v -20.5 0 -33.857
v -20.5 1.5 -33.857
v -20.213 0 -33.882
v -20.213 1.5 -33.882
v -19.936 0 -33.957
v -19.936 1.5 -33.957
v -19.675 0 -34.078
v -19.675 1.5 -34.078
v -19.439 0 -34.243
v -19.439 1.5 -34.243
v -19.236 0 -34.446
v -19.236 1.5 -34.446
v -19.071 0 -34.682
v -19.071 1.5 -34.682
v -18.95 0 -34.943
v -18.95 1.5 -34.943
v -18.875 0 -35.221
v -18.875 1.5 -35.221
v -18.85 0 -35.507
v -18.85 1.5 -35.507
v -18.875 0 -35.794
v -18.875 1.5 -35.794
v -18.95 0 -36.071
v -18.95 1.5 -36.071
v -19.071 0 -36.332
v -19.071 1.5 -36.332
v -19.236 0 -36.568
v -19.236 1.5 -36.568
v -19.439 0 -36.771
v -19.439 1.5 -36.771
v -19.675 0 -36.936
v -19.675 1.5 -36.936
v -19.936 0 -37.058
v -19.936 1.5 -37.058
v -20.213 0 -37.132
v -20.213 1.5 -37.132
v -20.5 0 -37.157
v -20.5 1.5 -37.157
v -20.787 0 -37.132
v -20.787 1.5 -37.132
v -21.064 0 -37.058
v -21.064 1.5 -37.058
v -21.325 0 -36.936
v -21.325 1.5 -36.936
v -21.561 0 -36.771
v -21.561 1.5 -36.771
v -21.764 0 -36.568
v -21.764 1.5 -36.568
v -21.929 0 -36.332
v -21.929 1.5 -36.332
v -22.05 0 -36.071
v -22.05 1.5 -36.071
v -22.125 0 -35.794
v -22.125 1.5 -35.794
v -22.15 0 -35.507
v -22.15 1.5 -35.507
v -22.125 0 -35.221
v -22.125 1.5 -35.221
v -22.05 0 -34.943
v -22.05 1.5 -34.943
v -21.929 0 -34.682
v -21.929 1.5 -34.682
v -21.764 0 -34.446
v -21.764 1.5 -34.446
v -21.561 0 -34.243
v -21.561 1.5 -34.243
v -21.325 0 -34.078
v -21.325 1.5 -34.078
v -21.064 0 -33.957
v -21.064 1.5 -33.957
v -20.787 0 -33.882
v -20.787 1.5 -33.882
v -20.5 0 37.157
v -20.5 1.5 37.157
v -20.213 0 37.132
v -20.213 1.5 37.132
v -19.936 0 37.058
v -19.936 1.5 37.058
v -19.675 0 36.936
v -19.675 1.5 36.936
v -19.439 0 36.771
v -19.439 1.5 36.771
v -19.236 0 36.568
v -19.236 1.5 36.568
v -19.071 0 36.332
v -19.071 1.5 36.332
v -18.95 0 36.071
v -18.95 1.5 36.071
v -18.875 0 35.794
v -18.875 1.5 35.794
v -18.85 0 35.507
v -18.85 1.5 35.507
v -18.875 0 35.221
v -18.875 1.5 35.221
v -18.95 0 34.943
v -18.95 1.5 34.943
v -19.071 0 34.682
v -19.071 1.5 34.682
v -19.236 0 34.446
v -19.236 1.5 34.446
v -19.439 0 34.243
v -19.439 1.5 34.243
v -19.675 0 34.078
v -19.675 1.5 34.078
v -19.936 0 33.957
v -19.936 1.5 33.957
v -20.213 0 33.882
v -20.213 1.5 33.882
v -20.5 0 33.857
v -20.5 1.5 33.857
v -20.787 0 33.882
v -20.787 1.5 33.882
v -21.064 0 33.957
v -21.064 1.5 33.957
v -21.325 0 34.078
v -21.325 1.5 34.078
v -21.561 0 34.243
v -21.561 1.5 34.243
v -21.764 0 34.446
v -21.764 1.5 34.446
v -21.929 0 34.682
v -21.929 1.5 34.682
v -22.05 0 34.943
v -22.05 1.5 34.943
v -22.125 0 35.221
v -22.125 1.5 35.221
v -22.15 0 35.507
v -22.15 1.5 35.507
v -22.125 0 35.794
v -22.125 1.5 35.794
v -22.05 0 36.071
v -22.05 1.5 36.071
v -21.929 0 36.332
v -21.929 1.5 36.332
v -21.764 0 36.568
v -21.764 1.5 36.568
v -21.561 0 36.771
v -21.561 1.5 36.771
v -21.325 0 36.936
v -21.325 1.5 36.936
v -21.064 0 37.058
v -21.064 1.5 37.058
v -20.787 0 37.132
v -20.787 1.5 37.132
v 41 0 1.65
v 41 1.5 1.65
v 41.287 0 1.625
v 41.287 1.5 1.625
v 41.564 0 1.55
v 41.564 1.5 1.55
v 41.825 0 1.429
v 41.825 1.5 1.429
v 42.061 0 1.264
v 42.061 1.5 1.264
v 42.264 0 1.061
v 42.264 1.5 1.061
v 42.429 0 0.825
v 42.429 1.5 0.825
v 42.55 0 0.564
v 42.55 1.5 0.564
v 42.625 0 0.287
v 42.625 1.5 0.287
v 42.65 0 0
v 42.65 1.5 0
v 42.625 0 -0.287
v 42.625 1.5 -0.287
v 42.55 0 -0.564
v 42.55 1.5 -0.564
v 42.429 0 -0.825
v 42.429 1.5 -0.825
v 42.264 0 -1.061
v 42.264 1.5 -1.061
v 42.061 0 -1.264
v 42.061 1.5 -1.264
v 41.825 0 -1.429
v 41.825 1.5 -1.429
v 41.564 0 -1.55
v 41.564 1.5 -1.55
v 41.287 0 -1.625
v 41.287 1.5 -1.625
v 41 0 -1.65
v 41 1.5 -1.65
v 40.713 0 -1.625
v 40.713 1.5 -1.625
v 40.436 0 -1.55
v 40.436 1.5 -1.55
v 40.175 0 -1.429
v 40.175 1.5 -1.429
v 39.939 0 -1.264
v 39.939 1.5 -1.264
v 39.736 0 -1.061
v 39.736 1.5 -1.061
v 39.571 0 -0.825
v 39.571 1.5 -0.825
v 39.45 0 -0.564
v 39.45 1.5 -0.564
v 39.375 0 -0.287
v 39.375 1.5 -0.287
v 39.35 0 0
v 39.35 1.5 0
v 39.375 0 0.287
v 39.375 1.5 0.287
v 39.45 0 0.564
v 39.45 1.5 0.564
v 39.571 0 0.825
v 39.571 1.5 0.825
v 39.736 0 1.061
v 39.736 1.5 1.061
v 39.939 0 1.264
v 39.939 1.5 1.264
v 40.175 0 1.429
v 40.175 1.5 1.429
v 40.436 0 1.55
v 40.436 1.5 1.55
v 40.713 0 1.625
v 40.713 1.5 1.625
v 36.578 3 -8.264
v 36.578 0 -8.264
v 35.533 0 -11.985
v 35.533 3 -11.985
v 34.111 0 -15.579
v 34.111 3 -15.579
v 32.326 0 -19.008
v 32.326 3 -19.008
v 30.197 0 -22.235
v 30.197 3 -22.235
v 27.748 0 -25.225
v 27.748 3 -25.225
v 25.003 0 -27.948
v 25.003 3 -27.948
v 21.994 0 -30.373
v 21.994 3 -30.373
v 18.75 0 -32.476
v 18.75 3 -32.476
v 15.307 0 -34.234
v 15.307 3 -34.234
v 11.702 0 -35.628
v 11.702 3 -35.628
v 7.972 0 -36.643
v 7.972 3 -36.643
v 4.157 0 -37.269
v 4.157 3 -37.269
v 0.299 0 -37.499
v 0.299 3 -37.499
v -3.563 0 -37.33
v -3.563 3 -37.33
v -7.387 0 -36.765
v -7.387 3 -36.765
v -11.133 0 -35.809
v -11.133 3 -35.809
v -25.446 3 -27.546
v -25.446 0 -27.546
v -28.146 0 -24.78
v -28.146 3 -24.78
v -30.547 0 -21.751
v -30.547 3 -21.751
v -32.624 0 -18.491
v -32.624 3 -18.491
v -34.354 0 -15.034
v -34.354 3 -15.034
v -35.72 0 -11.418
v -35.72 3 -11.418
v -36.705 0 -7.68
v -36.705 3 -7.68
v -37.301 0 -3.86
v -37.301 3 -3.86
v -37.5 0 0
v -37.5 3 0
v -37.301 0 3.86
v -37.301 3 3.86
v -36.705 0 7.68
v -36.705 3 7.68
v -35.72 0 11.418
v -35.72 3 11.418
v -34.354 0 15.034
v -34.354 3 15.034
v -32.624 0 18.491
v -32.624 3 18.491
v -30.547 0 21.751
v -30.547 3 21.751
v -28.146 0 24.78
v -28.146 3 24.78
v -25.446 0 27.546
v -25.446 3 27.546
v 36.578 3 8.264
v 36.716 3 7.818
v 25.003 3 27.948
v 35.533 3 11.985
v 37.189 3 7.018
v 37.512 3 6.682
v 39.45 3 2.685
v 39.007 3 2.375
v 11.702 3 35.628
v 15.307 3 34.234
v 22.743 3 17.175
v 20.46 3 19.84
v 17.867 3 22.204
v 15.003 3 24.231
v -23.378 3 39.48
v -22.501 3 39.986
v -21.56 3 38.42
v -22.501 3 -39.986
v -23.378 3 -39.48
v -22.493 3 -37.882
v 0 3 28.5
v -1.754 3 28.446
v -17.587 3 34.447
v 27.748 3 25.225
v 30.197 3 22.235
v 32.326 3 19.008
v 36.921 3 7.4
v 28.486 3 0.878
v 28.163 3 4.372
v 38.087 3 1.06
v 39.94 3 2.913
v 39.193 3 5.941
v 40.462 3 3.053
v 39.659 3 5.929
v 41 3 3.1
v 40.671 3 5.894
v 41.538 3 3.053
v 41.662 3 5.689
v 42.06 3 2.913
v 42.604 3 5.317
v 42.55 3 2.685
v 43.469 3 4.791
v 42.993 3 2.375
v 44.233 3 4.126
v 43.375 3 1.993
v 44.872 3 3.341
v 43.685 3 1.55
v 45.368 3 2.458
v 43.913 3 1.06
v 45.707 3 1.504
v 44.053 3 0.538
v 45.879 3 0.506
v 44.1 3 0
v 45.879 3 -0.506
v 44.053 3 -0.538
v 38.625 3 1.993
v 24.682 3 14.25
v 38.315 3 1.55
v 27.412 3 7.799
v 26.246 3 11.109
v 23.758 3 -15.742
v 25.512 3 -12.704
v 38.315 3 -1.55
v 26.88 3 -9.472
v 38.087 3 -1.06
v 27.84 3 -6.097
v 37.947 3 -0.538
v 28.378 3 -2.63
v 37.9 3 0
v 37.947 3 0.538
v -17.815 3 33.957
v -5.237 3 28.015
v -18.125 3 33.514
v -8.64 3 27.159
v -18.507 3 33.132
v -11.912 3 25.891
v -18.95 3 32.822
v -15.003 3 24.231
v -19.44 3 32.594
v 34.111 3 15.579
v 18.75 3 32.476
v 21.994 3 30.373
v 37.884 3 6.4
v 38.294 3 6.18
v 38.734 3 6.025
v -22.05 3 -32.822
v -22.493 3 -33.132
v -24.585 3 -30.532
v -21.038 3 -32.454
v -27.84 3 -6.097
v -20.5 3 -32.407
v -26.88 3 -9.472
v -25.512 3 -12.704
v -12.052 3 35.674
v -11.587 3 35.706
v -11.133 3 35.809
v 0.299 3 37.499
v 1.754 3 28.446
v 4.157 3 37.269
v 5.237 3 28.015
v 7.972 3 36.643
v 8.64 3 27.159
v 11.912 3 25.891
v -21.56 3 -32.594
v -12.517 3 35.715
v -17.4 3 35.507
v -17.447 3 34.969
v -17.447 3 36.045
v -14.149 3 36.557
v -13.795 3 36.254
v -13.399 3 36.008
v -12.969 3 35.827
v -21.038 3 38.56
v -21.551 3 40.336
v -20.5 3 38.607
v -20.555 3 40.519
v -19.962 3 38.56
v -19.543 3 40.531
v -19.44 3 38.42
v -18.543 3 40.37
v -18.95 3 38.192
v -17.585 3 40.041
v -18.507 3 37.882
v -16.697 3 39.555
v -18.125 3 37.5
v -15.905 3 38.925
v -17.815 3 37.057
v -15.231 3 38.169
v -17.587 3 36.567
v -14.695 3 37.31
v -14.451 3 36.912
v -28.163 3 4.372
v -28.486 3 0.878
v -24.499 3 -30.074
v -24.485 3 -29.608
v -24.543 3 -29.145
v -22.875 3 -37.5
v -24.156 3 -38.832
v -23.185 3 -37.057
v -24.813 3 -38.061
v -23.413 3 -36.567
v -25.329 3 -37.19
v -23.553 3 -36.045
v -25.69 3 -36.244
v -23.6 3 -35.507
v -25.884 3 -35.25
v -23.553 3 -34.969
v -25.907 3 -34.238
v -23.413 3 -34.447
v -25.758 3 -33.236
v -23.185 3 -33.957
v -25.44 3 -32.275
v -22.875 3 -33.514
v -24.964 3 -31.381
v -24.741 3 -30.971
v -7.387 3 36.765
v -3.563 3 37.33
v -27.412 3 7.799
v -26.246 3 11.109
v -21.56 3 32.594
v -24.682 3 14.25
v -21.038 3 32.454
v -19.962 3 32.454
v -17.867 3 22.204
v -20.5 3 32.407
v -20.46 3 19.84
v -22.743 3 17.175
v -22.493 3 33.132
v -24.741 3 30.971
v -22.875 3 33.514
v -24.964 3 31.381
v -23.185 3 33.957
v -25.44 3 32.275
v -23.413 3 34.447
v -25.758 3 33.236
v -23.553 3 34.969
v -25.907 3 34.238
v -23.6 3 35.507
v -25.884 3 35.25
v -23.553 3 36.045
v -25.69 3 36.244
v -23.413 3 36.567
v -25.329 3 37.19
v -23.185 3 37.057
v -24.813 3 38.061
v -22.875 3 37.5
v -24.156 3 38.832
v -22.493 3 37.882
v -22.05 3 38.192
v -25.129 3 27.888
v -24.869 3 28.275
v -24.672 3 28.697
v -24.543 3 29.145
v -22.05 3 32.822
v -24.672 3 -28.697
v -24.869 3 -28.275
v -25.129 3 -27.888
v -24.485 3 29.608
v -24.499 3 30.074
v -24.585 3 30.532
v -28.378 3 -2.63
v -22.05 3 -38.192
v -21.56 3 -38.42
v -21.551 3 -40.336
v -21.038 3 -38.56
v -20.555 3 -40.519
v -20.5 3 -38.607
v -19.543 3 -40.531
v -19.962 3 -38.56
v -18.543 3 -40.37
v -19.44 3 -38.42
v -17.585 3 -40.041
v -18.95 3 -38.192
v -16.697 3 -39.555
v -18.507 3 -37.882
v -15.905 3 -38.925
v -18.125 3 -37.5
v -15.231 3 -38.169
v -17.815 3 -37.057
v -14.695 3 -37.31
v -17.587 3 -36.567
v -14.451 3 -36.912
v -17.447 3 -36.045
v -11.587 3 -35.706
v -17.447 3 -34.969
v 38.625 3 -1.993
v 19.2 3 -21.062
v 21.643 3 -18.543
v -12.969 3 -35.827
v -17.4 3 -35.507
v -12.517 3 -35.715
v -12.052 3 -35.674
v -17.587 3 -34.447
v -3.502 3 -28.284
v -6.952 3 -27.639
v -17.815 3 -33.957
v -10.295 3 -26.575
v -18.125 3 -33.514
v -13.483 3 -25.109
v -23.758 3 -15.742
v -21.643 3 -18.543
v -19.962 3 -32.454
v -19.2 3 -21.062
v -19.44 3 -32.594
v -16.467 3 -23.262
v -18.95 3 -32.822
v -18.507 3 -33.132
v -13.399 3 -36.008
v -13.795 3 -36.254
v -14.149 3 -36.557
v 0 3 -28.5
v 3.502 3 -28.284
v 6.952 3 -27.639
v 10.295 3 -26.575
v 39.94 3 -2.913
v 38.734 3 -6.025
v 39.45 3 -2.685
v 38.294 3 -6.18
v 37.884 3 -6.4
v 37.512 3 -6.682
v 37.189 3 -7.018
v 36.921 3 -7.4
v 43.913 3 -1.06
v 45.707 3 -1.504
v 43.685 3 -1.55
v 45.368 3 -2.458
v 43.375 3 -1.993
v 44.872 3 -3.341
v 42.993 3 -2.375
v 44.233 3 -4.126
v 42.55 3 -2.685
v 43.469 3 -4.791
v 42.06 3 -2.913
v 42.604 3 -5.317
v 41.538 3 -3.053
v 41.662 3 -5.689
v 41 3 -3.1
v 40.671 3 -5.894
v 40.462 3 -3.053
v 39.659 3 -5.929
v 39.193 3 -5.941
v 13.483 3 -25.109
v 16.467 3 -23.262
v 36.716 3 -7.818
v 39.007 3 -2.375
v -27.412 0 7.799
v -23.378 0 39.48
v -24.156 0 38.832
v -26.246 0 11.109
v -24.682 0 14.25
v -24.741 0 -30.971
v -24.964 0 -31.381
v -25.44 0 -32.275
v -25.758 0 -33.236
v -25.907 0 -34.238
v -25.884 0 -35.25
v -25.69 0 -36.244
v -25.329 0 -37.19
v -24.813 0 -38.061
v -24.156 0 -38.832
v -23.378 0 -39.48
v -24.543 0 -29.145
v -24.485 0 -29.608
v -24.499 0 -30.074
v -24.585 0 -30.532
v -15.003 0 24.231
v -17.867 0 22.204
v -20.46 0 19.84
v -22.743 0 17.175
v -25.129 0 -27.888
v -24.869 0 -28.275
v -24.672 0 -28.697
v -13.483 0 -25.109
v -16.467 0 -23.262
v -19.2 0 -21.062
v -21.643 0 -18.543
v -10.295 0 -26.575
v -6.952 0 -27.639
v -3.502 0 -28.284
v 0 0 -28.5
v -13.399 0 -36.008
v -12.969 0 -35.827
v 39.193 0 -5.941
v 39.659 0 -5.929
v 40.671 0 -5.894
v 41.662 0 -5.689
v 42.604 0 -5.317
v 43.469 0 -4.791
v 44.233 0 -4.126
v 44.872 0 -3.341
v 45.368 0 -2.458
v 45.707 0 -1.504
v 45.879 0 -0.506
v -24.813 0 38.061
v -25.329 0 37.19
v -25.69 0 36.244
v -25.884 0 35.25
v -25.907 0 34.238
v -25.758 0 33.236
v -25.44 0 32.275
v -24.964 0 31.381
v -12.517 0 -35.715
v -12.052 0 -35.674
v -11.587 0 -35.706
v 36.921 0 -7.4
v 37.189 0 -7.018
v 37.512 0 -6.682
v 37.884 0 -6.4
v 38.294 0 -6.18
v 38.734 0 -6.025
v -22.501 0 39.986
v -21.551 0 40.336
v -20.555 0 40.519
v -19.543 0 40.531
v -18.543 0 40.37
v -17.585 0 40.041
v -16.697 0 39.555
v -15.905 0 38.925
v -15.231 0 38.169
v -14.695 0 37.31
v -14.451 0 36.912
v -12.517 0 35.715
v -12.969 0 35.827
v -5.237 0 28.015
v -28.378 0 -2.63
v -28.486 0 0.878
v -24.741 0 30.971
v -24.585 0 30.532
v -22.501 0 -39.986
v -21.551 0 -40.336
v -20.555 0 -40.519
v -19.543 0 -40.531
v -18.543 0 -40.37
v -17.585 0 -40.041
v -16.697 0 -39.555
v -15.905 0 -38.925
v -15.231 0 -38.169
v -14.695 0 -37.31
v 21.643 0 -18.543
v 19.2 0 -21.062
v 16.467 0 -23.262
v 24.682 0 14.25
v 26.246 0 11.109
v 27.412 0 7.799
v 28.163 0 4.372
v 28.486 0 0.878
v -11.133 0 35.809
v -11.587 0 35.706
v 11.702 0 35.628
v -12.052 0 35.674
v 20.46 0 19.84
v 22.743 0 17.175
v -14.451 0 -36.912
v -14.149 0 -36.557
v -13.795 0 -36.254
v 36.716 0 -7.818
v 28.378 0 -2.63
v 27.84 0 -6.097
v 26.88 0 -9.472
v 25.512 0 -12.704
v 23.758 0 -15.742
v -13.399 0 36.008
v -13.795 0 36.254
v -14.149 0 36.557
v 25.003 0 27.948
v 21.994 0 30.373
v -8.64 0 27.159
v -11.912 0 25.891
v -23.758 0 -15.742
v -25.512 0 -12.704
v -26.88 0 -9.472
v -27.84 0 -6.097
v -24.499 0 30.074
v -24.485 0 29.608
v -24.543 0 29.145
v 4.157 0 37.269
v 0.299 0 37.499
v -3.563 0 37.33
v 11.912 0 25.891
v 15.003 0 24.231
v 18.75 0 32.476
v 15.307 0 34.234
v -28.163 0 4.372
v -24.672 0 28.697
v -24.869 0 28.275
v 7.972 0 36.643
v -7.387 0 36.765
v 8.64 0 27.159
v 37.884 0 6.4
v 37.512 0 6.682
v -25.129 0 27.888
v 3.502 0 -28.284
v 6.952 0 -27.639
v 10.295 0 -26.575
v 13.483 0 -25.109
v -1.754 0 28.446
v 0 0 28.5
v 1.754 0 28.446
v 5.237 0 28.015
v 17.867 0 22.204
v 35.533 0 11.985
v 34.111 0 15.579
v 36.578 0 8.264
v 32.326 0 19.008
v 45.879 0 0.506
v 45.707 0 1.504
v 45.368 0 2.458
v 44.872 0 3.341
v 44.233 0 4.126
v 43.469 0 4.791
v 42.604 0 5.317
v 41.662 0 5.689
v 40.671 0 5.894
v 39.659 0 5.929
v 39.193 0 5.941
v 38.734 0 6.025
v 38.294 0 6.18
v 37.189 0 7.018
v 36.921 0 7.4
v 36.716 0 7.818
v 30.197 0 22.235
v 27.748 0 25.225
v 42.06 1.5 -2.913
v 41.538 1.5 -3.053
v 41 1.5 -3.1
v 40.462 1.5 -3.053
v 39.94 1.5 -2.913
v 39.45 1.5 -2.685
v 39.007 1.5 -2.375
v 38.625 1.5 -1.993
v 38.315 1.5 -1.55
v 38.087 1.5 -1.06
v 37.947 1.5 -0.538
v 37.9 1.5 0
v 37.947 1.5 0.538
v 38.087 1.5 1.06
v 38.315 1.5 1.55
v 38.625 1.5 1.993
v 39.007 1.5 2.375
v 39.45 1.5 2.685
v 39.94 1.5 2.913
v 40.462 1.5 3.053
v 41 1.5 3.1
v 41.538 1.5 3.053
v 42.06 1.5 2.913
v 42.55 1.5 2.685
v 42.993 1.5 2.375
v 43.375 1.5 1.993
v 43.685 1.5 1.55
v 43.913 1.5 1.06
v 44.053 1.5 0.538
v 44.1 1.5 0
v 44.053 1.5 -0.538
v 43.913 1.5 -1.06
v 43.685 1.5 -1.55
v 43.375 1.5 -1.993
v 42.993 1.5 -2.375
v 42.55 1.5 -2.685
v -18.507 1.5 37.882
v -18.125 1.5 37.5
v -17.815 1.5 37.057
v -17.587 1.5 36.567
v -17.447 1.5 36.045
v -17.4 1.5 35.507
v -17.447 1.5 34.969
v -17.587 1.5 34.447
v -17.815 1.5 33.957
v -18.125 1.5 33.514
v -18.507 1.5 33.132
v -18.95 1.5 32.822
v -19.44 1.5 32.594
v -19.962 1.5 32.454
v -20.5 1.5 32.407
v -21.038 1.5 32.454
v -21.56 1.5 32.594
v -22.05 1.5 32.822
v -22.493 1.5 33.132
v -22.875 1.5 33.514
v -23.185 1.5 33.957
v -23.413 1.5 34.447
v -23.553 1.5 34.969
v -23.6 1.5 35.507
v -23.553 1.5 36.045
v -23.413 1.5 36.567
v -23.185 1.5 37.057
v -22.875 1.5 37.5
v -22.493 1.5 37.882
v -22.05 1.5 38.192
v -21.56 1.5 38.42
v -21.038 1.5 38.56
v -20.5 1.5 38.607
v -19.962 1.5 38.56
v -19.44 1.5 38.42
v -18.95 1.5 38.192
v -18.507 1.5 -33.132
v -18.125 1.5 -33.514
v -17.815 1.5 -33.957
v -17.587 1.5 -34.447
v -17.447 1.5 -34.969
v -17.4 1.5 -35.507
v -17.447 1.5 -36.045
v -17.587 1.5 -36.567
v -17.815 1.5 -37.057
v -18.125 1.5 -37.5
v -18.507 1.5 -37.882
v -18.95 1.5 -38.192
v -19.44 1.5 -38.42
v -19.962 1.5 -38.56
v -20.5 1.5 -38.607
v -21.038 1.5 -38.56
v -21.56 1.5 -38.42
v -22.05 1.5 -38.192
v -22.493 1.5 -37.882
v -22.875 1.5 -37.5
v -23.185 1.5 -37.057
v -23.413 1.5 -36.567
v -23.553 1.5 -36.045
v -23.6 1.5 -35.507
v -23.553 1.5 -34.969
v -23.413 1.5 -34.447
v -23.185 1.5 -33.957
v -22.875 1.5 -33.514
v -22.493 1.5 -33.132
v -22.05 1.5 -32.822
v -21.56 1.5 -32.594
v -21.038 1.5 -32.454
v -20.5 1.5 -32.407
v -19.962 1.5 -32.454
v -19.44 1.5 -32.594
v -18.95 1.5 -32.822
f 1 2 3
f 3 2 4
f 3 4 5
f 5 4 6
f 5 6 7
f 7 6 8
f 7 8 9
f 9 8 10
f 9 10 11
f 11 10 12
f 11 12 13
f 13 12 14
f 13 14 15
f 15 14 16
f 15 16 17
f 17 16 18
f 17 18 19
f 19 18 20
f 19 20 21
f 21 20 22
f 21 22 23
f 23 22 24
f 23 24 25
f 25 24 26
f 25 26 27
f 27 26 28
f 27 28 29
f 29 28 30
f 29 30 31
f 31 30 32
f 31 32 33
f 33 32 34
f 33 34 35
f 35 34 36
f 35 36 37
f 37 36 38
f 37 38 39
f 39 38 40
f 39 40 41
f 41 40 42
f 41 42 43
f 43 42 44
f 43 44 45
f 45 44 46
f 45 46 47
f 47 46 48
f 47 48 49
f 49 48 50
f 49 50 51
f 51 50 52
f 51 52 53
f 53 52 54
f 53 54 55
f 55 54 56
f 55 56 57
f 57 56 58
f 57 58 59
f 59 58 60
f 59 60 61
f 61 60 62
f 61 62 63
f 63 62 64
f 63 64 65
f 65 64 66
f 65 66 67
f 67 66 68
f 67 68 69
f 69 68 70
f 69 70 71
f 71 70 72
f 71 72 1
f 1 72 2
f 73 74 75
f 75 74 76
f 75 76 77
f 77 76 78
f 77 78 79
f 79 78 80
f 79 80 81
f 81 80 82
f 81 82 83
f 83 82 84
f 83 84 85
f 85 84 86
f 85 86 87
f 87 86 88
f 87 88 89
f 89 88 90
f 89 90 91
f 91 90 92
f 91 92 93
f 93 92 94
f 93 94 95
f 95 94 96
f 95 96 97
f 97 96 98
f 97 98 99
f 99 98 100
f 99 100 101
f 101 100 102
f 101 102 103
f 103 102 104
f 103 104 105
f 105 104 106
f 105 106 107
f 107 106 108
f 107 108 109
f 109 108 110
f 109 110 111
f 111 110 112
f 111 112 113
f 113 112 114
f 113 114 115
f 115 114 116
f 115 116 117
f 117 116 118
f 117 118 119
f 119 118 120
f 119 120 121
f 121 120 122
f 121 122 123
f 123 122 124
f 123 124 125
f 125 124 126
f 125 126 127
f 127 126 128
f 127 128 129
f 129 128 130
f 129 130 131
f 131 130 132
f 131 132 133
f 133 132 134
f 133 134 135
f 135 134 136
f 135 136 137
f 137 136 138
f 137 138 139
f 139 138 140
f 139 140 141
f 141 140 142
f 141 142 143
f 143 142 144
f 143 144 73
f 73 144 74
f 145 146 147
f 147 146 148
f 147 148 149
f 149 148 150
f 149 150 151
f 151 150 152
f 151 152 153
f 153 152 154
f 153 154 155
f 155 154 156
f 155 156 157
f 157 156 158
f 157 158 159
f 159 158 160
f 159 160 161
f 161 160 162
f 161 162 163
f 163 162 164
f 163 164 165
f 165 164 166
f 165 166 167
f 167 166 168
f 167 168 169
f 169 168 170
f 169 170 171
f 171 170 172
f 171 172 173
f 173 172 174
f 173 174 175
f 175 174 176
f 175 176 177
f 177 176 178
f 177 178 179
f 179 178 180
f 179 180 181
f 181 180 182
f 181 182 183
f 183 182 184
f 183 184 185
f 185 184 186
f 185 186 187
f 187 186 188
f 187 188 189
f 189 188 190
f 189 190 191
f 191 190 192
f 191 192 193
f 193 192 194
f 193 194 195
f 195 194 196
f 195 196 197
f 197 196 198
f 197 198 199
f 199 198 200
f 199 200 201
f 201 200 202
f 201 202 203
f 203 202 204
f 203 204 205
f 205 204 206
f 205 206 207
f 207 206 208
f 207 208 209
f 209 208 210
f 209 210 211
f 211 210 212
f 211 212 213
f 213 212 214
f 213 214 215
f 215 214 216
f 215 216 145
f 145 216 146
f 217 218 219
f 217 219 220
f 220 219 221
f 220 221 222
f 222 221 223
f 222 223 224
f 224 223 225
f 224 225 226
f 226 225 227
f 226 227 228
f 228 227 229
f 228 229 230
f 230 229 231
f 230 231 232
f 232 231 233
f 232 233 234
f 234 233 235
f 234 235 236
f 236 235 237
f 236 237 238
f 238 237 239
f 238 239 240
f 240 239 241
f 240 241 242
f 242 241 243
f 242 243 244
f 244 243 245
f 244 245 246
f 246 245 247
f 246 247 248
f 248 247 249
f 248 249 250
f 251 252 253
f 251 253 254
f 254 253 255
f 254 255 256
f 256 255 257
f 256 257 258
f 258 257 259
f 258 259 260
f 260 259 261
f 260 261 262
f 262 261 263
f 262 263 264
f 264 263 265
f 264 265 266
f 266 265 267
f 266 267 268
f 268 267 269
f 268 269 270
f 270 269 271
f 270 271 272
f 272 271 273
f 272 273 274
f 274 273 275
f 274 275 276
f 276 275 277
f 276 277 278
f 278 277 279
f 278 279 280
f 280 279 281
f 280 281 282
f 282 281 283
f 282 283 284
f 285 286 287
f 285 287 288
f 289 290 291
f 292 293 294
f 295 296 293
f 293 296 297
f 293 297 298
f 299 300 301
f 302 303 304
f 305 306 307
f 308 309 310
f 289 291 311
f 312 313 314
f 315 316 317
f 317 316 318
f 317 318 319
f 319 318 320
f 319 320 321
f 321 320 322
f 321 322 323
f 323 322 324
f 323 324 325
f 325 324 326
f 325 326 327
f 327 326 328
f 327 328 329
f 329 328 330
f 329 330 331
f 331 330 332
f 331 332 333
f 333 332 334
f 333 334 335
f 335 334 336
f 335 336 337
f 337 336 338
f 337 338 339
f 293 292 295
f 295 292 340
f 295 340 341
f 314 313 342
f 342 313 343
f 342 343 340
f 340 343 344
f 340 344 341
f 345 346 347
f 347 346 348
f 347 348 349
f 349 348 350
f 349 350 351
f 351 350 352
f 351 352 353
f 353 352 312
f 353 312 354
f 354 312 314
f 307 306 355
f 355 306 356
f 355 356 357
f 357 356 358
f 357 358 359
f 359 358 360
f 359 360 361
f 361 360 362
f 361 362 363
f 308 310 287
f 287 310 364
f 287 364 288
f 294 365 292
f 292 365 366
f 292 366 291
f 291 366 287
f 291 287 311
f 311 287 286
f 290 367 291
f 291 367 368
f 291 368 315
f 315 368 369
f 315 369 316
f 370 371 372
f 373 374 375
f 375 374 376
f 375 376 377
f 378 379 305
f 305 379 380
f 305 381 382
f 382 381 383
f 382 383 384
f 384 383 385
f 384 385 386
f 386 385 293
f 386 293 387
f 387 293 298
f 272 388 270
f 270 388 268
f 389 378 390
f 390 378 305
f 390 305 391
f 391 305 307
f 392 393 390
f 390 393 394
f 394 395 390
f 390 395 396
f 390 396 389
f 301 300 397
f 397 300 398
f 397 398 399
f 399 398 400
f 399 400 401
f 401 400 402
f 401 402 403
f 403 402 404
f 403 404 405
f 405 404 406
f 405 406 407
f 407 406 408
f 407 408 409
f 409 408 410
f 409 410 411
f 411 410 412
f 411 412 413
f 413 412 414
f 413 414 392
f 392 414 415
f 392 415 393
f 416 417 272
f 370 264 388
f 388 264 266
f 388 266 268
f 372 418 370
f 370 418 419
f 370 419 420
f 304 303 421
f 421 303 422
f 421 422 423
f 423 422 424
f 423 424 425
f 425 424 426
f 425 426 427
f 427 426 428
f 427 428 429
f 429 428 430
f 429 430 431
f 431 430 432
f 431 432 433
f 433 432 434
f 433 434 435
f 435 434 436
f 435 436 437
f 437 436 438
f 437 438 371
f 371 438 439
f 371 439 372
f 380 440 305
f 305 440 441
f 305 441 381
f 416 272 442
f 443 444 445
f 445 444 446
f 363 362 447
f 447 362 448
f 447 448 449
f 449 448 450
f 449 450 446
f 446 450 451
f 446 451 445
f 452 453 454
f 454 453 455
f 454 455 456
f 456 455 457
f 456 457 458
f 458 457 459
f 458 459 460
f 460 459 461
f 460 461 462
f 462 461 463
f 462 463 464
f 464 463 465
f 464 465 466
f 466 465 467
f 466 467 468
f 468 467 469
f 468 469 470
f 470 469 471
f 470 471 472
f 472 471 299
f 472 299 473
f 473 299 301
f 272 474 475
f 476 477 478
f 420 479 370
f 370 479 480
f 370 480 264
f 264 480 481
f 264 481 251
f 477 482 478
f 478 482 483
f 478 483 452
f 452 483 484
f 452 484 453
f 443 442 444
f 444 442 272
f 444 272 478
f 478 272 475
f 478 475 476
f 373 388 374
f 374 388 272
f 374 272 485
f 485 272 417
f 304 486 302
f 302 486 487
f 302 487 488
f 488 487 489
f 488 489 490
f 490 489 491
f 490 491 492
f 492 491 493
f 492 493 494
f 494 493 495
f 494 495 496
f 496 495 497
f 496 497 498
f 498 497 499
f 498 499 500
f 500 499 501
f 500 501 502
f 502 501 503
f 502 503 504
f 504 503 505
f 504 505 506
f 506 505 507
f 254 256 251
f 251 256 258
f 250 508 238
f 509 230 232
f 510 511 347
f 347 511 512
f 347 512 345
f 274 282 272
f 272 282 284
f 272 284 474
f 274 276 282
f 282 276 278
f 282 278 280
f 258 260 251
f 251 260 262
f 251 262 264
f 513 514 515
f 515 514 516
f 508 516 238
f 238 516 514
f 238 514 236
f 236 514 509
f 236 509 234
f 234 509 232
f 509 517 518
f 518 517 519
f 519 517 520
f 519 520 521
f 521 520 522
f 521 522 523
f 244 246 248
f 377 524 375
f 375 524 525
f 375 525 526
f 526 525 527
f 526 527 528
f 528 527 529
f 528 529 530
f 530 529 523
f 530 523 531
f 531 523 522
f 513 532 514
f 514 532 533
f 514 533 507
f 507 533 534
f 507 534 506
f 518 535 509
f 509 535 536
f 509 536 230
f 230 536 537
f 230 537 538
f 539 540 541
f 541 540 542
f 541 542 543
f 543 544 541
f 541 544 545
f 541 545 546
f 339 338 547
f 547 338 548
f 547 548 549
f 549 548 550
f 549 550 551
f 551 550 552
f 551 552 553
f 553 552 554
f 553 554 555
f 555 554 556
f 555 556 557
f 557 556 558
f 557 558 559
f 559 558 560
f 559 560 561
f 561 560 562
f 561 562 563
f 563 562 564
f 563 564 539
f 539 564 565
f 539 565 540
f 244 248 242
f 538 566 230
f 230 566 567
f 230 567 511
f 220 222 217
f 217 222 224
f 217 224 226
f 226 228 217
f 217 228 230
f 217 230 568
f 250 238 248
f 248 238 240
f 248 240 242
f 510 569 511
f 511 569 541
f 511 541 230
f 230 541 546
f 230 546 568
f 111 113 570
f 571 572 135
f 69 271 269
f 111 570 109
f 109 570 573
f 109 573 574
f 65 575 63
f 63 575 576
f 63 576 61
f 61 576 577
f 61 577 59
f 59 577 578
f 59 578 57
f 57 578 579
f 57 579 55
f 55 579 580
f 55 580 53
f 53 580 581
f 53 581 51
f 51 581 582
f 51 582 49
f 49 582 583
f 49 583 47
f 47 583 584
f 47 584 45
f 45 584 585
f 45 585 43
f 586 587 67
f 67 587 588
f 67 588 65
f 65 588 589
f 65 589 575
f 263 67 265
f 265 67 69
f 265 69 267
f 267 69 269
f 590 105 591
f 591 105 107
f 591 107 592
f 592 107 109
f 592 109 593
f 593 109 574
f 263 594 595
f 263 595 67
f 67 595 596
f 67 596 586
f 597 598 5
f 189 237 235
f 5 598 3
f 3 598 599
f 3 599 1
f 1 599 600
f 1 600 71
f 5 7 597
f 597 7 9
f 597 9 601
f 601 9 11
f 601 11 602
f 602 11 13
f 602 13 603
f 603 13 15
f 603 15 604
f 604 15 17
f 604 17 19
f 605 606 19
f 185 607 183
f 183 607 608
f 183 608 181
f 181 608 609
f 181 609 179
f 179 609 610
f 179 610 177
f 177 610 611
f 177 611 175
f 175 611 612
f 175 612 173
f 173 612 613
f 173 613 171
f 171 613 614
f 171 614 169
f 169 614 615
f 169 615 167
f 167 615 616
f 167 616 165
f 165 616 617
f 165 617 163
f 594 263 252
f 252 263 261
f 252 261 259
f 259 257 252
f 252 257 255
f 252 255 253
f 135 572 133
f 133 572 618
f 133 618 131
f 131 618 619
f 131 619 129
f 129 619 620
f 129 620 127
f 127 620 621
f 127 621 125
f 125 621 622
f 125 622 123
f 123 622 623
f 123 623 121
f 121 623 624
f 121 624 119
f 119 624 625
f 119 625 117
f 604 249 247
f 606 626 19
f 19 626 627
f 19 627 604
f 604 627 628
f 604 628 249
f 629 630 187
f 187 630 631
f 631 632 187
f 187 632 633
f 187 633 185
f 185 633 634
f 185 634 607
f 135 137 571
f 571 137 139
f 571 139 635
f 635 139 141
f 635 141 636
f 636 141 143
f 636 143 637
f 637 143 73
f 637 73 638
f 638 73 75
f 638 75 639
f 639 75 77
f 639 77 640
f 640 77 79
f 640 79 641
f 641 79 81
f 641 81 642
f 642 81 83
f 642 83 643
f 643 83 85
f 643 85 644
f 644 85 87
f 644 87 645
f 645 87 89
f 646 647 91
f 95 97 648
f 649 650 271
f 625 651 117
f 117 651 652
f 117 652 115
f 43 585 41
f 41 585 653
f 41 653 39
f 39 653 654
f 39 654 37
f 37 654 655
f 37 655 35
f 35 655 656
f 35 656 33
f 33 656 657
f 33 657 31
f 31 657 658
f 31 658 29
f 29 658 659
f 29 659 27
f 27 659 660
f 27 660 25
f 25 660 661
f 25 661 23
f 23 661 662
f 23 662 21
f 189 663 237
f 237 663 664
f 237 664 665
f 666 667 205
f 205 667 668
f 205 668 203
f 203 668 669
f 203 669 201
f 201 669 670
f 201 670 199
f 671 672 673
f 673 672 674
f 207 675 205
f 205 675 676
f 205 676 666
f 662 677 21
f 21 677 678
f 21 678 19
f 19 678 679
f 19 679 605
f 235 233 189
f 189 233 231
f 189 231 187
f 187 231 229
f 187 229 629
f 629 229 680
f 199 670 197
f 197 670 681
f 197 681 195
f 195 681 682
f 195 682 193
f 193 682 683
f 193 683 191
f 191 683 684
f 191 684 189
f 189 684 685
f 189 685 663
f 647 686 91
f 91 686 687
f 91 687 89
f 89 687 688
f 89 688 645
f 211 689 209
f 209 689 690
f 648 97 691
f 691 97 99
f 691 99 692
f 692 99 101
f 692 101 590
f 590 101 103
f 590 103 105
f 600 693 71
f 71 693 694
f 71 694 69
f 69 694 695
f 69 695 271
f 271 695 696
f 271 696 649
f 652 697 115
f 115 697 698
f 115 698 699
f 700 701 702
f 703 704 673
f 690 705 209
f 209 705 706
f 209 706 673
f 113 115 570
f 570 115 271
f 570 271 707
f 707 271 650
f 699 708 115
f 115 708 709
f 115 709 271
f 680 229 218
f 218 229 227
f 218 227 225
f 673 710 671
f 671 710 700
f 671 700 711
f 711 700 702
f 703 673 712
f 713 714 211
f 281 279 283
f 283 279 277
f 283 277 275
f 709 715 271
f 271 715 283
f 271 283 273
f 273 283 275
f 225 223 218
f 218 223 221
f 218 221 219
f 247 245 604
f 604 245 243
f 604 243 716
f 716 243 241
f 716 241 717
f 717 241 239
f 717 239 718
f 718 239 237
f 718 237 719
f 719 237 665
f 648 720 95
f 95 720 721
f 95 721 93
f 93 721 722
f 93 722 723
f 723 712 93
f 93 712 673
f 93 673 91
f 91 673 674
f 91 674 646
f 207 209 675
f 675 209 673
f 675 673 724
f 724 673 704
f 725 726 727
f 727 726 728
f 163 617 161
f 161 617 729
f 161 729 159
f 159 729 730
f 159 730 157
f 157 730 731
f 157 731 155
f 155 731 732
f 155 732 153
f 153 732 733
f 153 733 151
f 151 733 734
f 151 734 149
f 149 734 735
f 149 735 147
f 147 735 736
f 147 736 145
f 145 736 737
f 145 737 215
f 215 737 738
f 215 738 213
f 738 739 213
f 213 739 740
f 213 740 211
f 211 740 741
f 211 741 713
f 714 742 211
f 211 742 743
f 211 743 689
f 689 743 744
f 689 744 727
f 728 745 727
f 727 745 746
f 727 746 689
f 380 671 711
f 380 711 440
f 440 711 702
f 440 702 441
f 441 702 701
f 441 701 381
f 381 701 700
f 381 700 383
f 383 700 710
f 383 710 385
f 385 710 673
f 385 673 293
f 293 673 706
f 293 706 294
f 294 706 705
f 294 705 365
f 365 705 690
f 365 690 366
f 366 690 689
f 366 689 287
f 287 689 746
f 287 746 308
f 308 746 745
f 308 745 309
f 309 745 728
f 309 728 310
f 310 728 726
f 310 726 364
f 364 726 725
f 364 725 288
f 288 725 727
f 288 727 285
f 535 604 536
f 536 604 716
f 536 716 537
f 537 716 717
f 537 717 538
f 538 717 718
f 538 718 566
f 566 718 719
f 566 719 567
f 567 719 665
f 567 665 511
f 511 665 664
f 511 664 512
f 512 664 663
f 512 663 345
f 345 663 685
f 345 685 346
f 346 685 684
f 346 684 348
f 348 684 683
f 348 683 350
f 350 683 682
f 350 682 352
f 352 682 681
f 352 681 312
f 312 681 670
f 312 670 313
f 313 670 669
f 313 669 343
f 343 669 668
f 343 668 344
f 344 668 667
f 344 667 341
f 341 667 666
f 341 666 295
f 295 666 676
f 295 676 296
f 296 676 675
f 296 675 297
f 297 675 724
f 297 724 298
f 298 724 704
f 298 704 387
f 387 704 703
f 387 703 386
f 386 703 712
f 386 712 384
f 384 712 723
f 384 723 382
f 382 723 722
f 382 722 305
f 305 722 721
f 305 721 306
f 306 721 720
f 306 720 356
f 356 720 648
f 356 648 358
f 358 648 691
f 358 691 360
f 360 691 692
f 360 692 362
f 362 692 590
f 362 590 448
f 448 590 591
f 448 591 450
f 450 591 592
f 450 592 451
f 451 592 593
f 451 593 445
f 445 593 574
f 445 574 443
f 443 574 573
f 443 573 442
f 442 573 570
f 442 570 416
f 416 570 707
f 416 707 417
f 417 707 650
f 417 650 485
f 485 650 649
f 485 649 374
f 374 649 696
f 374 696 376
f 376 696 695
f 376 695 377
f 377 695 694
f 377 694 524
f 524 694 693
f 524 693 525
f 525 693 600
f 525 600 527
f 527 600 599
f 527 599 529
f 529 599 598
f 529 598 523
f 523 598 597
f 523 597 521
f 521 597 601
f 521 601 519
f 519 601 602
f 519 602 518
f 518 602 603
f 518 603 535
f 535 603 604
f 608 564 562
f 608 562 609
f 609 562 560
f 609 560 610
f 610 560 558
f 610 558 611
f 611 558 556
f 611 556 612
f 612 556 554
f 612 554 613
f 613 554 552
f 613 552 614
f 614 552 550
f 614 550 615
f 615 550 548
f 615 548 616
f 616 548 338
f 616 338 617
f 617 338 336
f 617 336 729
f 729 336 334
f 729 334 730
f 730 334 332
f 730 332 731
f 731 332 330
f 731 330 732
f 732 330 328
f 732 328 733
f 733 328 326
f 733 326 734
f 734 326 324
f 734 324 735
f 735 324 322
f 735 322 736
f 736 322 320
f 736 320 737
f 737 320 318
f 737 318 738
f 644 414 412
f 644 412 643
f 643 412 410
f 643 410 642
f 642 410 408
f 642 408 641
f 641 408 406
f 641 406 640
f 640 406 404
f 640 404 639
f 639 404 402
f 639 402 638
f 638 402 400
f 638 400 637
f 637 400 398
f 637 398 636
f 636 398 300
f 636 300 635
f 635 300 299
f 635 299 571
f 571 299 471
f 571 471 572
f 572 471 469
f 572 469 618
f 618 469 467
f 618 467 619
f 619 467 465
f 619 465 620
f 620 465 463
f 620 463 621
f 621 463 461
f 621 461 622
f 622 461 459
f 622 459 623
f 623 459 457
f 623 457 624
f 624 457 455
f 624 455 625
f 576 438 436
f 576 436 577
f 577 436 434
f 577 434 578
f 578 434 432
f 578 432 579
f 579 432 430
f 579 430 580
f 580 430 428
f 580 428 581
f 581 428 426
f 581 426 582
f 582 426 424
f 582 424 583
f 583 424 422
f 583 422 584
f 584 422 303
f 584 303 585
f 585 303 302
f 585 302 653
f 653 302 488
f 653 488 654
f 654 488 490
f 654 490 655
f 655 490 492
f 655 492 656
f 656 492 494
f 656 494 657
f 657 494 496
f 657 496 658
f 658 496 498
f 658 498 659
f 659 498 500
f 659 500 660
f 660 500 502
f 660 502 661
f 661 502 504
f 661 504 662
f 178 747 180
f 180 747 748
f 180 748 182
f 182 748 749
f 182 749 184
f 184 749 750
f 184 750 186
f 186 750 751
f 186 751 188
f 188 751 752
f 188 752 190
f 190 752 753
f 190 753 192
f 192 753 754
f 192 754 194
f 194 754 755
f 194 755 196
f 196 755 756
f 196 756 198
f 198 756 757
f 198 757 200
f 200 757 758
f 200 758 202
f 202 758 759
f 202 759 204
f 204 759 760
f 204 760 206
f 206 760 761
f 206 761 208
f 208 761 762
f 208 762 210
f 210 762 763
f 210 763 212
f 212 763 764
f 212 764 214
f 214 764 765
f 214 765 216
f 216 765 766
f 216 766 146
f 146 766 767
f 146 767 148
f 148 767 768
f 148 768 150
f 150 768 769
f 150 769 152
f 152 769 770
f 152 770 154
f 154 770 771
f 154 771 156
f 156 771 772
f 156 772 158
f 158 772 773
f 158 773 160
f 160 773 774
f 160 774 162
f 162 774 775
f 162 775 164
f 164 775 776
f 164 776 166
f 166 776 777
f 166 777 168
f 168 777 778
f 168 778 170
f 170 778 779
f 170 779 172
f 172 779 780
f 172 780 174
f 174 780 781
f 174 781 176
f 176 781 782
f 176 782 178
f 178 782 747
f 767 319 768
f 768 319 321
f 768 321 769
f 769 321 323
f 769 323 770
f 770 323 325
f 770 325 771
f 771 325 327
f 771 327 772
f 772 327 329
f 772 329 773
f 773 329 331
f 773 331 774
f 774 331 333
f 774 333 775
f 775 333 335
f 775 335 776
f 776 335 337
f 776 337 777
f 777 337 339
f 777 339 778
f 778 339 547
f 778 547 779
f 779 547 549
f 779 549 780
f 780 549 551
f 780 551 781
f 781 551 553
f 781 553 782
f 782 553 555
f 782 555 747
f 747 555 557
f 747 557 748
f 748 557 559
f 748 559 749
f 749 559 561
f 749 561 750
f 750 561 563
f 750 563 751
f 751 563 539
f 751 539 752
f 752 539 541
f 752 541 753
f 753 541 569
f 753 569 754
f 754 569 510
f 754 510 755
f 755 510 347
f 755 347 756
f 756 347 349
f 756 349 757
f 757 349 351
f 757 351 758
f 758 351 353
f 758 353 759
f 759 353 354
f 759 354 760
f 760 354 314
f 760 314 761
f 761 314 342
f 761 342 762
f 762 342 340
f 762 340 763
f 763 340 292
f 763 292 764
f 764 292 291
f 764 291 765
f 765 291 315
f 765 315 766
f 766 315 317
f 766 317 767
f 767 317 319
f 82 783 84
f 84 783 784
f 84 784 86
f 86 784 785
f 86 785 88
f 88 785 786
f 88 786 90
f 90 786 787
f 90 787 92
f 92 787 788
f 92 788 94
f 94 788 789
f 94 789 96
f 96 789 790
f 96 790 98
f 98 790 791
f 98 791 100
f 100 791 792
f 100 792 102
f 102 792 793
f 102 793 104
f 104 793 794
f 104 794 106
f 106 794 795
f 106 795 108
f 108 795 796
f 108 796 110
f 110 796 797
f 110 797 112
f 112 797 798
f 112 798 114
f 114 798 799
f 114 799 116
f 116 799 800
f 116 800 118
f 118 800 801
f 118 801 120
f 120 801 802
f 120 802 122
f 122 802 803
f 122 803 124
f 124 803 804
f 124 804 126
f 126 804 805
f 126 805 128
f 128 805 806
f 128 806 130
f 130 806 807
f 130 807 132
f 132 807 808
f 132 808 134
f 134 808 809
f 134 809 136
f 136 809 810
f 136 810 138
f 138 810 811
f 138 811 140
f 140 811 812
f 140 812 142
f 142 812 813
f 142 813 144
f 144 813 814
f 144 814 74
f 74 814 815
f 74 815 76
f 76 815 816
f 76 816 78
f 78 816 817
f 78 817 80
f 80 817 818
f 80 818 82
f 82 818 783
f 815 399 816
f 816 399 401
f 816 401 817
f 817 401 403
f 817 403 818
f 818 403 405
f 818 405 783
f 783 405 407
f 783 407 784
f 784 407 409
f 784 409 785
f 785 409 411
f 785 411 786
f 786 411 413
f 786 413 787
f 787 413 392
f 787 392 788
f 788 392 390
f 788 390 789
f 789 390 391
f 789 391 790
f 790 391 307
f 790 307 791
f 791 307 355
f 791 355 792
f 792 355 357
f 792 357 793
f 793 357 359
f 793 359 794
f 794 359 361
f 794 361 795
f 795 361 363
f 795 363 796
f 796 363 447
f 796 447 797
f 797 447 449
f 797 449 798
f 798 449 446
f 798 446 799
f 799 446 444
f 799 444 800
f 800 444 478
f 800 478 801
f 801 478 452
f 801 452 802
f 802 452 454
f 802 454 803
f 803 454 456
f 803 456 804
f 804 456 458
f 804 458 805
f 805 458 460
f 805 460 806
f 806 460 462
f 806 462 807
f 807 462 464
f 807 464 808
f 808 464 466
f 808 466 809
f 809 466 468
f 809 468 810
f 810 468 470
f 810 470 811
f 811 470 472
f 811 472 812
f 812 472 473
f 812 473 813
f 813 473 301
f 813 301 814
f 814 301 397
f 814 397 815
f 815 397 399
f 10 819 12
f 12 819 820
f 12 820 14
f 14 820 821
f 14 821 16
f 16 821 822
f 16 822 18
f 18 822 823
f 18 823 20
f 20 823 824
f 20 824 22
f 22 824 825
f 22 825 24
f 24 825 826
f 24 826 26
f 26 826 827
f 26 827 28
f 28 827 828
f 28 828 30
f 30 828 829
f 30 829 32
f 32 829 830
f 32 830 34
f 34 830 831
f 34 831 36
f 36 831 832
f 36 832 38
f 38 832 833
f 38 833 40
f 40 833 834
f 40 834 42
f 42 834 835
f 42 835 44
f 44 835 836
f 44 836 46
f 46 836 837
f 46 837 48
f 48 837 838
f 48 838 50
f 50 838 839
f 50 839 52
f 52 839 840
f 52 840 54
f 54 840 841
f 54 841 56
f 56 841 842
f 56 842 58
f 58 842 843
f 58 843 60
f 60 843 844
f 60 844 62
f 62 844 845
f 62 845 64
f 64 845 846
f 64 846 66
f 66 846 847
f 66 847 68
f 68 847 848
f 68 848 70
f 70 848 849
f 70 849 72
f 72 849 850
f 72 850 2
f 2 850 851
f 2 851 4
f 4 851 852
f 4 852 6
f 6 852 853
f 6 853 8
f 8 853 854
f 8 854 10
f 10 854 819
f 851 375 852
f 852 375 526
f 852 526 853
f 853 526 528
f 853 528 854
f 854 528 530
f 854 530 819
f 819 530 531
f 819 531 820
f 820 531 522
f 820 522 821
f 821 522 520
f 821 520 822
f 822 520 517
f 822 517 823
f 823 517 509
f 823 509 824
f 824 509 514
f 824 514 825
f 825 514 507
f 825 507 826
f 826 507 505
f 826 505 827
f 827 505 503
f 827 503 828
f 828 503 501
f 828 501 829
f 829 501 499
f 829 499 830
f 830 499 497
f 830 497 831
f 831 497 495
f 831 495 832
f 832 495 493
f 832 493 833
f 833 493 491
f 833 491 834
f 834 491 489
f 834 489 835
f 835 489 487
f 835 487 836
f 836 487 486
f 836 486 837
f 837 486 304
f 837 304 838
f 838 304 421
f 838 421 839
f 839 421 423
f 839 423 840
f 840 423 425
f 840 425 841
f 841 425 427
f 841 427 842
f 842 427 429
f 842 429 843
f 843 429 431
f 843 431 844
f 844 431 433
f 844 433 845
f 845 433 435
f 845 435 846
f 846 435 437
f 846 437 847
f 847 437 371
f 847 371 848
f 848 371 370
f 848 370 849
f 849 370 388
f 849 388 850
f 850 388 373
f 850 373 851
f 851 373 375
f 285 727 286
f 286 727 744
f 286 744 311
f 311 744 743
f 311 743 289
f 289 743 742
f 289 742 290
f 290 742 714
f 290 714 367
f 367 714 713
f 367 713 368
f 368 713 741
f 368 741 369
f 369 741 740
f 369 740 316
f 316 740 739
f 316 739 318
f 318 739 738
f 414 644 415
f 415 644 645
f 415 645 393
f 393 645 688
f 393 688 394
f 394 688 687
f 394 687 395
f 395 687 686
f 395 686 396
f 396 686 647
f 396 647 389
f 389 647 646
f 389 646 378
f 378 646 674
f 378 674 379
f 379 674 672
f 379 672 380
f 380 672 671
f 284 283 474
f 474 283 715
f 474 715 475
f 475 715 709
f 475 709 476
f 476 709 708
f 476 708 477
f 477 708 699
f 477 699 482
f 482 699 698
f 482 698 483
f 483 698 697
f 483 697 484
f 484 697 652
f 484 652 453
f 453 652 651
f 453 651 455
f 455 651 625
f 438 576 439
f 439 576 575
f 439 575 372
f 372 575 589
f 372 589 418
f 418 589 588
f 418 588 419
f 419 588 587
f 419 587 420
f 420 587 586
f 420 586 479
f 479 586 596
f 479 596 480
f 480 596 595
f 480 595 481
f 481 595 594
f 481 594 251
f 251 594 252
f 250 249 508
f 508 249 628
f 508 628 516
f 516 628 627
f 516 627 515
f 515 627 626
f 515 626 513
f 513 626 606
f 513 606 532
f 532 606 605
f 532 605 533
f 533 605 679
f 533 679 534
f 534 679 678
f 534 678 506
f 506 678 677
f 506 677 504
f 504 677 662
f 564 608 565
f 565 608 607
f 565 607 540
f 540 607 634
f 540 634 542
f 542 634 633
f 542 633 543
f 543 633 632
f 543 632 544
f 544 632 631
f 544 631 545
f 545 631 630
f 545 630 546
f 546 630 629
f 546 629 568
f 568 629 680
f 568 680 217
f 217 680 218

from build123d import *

# Parameters (mm, degrees)
SKETCH1_R           = 37.5
SKETCH1_R_2         = 28.5
BOSS_EXTRUDE1_DEPTH = 3
BOSS_EXTRUDE2_START = -3
BOSS_EXTRUDE2_DEPTH = 3
SKETCH6_R           = 1.65
CUT_EXTRUDE2_DEPTH  = 10
SKETCH7_R           = 3.1
CUT_EXTRUDE3_DEPTH  = 1.5
FILLET1_R           = 3


with BuildPart() as part:
    # Sketch1 → Boss-Extrude1 (new body)
    with BuildSketch(Plane(origin=(0, 0, 0), x_dir=(1, 0, 0), z_dir=(0, 1, 0))):
        with Locations(Location((0, 0, 0), (0, 0, 270))):
            Circle(SKETCH1_R)
        with Locations(Location((0, 0, 0), (0, 0, 270))):
            Circle(SKETCH1_R_2, mode=Mode.SUBTRACT)
    extrude(amount=BOSS_EXTRUDE1_DEPTH)

    # Sketch3 → Boss-Extrude2 (add)
    with BuildSketch(Plane(origin=(0, 3, 0), x_dir=(1, 0, 0), z_dir=(0, 1, 0)).offset(BOSS_EXTRUDE2_START)):
        with BuildLine():
            ThreePointArc((37.135052578, 5.218991286), (45.901049183, 0), (37.135052578, -5.218991286))
            ThreePointArc((37.135052578, -5.218991286), (37.5, 0), (37.135052578, 5.218991286))
        make_face()
        with BuildLine():
            ThreePointArc((-14.047747253, -34.769394546), (-22.950524592, -39.751474653), (-23.087305325, -29.55040326))
            ThreePointArc((-23.087305325, -29.55040326), (-18.75, -32.475952642), (-14.047747253, -34.769394546))
        make_face()
        with BuildLine():
            ThreePointArc((-23.087305325, 29.55040326), (-22.950524592, 39.751474653), (-14.047747253, 34.769394546))
            ThreePointArc((-14.047747253, 34.769394546), (-18.75, 32.475952642), (-23.087305325, 29.55040326))
        make_face()
    extrude(amount=BOSS_EXTRUDE2_DEPTH)

    # Sketch6 → Cut-Extrude2 (cut)
    with BuildSketch(Plane(origin=(0, 3, 0), x_dir=(1, 0, 0), z_dir=(0, 1, 0))):
        with Locations(Location((41, 0, 0), (0, 0, 270))):
            Circle(SKETCH6_R)
        with Locations(Location((-20.5, -35.507041555, 0), (0, 0, 270))):
            Circle(SKETCH6_R)
        with Locations(Location((-20.5, 35.507041555, 0), (0, 0, 270))):
            Circle(SKETCH6_R)
    extrude(amount=-CUT_EXTRUDE2_DEPTH, mode=Mode.SUBTRACT)

    # Sketch7 → Cut-Extrude3 (cut)
    with BuildSketch(Plane(origin=(0, 3, 0), x_dir=(1, 0, 0), z_dir=(0, 1, 0))):
        with Locations(Location((41, 0, 0), (0, 0, 270))):
            Circle(SKETCH7_R)
        with Locations(Location((-20.5, -35.507041555, 0), (0, 0, 270))):
            Circle(SKETCH7_R)
        with Locations(Location((-20.5, 35.507041555, 0), (0, 0, 270))):
            Circle(SKETCH7_R)
    extrude(amount=-CUT_EXTRUDE3_DEPTH, mode=Mode.SUBTRACT)

    # Fillet1
    fillet1_edges = [part.edges().sort_by_distance(p)[0] for p in [
        (37.135052578, 1.5, 5.218991286),
        (37.135052578, 1.5, -5.218991286),
        (-23.087305325, 1.5, 29.55040326),
        (-14.047747253, 1.5, 34.769394546),
        (-14.047747253, 1.5, -34.769394546),
        (-23.087305325, 1.5, -29.55040326),
    ]]
    fillet(fillet1_edges, radius=FILLET1_R)


solid = part.part
